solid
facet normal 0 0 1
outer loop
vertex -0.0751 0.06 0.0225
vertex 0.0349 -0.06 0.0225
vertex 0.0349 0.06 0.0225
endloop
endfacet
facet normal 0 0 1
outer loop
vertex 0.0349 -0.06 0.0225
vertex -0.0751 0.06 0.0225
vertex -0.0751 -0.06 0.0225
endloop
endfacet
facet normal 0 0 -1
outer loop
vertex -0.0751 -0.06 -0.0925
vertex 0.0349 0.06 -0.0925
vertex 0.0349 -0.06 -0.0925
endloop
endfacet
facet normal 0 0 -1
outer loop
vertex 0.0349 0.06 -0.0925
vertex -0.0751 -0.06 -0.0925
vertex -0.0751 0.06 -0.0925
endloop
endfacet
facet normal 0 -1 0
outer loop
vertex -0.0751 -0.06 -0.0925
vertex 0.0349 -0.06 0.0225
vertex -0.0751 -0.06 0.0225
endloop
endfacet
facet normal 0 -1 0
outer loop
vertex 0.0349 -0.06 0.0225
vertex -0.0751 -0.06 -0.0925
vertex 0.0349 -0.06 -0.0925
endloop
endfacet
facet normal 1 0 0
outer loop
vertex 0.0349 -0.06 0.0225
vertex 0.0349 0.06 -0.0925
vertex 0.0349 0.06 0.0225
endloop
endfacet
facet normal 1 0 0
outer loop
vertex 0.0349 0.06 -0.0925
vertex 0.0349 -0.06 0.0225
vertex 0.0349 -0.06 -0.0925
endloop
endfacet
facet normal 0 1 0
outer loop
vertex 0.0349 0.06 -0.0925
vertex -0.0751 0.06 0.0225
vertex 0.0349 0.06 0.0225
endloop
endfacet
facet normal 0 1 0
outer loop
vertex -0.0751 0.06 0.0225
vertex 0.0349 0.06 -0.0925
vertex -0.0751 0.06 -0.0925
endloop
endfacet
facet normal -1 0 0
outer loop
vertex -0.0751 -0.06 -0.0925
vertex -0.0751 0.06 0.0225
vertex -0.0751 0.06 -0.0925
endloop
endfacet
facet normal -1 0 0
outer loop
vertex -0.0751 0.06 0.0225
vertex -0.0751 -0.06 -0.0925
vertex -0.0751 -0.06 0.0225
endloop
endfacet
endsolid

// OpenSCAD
// A simplified collision mesh for the body of
// Darwin-OP.

translate([-0.0201, 0.00, -0.035])
    cube([0.11, 0.12, 0.115], center = true);
